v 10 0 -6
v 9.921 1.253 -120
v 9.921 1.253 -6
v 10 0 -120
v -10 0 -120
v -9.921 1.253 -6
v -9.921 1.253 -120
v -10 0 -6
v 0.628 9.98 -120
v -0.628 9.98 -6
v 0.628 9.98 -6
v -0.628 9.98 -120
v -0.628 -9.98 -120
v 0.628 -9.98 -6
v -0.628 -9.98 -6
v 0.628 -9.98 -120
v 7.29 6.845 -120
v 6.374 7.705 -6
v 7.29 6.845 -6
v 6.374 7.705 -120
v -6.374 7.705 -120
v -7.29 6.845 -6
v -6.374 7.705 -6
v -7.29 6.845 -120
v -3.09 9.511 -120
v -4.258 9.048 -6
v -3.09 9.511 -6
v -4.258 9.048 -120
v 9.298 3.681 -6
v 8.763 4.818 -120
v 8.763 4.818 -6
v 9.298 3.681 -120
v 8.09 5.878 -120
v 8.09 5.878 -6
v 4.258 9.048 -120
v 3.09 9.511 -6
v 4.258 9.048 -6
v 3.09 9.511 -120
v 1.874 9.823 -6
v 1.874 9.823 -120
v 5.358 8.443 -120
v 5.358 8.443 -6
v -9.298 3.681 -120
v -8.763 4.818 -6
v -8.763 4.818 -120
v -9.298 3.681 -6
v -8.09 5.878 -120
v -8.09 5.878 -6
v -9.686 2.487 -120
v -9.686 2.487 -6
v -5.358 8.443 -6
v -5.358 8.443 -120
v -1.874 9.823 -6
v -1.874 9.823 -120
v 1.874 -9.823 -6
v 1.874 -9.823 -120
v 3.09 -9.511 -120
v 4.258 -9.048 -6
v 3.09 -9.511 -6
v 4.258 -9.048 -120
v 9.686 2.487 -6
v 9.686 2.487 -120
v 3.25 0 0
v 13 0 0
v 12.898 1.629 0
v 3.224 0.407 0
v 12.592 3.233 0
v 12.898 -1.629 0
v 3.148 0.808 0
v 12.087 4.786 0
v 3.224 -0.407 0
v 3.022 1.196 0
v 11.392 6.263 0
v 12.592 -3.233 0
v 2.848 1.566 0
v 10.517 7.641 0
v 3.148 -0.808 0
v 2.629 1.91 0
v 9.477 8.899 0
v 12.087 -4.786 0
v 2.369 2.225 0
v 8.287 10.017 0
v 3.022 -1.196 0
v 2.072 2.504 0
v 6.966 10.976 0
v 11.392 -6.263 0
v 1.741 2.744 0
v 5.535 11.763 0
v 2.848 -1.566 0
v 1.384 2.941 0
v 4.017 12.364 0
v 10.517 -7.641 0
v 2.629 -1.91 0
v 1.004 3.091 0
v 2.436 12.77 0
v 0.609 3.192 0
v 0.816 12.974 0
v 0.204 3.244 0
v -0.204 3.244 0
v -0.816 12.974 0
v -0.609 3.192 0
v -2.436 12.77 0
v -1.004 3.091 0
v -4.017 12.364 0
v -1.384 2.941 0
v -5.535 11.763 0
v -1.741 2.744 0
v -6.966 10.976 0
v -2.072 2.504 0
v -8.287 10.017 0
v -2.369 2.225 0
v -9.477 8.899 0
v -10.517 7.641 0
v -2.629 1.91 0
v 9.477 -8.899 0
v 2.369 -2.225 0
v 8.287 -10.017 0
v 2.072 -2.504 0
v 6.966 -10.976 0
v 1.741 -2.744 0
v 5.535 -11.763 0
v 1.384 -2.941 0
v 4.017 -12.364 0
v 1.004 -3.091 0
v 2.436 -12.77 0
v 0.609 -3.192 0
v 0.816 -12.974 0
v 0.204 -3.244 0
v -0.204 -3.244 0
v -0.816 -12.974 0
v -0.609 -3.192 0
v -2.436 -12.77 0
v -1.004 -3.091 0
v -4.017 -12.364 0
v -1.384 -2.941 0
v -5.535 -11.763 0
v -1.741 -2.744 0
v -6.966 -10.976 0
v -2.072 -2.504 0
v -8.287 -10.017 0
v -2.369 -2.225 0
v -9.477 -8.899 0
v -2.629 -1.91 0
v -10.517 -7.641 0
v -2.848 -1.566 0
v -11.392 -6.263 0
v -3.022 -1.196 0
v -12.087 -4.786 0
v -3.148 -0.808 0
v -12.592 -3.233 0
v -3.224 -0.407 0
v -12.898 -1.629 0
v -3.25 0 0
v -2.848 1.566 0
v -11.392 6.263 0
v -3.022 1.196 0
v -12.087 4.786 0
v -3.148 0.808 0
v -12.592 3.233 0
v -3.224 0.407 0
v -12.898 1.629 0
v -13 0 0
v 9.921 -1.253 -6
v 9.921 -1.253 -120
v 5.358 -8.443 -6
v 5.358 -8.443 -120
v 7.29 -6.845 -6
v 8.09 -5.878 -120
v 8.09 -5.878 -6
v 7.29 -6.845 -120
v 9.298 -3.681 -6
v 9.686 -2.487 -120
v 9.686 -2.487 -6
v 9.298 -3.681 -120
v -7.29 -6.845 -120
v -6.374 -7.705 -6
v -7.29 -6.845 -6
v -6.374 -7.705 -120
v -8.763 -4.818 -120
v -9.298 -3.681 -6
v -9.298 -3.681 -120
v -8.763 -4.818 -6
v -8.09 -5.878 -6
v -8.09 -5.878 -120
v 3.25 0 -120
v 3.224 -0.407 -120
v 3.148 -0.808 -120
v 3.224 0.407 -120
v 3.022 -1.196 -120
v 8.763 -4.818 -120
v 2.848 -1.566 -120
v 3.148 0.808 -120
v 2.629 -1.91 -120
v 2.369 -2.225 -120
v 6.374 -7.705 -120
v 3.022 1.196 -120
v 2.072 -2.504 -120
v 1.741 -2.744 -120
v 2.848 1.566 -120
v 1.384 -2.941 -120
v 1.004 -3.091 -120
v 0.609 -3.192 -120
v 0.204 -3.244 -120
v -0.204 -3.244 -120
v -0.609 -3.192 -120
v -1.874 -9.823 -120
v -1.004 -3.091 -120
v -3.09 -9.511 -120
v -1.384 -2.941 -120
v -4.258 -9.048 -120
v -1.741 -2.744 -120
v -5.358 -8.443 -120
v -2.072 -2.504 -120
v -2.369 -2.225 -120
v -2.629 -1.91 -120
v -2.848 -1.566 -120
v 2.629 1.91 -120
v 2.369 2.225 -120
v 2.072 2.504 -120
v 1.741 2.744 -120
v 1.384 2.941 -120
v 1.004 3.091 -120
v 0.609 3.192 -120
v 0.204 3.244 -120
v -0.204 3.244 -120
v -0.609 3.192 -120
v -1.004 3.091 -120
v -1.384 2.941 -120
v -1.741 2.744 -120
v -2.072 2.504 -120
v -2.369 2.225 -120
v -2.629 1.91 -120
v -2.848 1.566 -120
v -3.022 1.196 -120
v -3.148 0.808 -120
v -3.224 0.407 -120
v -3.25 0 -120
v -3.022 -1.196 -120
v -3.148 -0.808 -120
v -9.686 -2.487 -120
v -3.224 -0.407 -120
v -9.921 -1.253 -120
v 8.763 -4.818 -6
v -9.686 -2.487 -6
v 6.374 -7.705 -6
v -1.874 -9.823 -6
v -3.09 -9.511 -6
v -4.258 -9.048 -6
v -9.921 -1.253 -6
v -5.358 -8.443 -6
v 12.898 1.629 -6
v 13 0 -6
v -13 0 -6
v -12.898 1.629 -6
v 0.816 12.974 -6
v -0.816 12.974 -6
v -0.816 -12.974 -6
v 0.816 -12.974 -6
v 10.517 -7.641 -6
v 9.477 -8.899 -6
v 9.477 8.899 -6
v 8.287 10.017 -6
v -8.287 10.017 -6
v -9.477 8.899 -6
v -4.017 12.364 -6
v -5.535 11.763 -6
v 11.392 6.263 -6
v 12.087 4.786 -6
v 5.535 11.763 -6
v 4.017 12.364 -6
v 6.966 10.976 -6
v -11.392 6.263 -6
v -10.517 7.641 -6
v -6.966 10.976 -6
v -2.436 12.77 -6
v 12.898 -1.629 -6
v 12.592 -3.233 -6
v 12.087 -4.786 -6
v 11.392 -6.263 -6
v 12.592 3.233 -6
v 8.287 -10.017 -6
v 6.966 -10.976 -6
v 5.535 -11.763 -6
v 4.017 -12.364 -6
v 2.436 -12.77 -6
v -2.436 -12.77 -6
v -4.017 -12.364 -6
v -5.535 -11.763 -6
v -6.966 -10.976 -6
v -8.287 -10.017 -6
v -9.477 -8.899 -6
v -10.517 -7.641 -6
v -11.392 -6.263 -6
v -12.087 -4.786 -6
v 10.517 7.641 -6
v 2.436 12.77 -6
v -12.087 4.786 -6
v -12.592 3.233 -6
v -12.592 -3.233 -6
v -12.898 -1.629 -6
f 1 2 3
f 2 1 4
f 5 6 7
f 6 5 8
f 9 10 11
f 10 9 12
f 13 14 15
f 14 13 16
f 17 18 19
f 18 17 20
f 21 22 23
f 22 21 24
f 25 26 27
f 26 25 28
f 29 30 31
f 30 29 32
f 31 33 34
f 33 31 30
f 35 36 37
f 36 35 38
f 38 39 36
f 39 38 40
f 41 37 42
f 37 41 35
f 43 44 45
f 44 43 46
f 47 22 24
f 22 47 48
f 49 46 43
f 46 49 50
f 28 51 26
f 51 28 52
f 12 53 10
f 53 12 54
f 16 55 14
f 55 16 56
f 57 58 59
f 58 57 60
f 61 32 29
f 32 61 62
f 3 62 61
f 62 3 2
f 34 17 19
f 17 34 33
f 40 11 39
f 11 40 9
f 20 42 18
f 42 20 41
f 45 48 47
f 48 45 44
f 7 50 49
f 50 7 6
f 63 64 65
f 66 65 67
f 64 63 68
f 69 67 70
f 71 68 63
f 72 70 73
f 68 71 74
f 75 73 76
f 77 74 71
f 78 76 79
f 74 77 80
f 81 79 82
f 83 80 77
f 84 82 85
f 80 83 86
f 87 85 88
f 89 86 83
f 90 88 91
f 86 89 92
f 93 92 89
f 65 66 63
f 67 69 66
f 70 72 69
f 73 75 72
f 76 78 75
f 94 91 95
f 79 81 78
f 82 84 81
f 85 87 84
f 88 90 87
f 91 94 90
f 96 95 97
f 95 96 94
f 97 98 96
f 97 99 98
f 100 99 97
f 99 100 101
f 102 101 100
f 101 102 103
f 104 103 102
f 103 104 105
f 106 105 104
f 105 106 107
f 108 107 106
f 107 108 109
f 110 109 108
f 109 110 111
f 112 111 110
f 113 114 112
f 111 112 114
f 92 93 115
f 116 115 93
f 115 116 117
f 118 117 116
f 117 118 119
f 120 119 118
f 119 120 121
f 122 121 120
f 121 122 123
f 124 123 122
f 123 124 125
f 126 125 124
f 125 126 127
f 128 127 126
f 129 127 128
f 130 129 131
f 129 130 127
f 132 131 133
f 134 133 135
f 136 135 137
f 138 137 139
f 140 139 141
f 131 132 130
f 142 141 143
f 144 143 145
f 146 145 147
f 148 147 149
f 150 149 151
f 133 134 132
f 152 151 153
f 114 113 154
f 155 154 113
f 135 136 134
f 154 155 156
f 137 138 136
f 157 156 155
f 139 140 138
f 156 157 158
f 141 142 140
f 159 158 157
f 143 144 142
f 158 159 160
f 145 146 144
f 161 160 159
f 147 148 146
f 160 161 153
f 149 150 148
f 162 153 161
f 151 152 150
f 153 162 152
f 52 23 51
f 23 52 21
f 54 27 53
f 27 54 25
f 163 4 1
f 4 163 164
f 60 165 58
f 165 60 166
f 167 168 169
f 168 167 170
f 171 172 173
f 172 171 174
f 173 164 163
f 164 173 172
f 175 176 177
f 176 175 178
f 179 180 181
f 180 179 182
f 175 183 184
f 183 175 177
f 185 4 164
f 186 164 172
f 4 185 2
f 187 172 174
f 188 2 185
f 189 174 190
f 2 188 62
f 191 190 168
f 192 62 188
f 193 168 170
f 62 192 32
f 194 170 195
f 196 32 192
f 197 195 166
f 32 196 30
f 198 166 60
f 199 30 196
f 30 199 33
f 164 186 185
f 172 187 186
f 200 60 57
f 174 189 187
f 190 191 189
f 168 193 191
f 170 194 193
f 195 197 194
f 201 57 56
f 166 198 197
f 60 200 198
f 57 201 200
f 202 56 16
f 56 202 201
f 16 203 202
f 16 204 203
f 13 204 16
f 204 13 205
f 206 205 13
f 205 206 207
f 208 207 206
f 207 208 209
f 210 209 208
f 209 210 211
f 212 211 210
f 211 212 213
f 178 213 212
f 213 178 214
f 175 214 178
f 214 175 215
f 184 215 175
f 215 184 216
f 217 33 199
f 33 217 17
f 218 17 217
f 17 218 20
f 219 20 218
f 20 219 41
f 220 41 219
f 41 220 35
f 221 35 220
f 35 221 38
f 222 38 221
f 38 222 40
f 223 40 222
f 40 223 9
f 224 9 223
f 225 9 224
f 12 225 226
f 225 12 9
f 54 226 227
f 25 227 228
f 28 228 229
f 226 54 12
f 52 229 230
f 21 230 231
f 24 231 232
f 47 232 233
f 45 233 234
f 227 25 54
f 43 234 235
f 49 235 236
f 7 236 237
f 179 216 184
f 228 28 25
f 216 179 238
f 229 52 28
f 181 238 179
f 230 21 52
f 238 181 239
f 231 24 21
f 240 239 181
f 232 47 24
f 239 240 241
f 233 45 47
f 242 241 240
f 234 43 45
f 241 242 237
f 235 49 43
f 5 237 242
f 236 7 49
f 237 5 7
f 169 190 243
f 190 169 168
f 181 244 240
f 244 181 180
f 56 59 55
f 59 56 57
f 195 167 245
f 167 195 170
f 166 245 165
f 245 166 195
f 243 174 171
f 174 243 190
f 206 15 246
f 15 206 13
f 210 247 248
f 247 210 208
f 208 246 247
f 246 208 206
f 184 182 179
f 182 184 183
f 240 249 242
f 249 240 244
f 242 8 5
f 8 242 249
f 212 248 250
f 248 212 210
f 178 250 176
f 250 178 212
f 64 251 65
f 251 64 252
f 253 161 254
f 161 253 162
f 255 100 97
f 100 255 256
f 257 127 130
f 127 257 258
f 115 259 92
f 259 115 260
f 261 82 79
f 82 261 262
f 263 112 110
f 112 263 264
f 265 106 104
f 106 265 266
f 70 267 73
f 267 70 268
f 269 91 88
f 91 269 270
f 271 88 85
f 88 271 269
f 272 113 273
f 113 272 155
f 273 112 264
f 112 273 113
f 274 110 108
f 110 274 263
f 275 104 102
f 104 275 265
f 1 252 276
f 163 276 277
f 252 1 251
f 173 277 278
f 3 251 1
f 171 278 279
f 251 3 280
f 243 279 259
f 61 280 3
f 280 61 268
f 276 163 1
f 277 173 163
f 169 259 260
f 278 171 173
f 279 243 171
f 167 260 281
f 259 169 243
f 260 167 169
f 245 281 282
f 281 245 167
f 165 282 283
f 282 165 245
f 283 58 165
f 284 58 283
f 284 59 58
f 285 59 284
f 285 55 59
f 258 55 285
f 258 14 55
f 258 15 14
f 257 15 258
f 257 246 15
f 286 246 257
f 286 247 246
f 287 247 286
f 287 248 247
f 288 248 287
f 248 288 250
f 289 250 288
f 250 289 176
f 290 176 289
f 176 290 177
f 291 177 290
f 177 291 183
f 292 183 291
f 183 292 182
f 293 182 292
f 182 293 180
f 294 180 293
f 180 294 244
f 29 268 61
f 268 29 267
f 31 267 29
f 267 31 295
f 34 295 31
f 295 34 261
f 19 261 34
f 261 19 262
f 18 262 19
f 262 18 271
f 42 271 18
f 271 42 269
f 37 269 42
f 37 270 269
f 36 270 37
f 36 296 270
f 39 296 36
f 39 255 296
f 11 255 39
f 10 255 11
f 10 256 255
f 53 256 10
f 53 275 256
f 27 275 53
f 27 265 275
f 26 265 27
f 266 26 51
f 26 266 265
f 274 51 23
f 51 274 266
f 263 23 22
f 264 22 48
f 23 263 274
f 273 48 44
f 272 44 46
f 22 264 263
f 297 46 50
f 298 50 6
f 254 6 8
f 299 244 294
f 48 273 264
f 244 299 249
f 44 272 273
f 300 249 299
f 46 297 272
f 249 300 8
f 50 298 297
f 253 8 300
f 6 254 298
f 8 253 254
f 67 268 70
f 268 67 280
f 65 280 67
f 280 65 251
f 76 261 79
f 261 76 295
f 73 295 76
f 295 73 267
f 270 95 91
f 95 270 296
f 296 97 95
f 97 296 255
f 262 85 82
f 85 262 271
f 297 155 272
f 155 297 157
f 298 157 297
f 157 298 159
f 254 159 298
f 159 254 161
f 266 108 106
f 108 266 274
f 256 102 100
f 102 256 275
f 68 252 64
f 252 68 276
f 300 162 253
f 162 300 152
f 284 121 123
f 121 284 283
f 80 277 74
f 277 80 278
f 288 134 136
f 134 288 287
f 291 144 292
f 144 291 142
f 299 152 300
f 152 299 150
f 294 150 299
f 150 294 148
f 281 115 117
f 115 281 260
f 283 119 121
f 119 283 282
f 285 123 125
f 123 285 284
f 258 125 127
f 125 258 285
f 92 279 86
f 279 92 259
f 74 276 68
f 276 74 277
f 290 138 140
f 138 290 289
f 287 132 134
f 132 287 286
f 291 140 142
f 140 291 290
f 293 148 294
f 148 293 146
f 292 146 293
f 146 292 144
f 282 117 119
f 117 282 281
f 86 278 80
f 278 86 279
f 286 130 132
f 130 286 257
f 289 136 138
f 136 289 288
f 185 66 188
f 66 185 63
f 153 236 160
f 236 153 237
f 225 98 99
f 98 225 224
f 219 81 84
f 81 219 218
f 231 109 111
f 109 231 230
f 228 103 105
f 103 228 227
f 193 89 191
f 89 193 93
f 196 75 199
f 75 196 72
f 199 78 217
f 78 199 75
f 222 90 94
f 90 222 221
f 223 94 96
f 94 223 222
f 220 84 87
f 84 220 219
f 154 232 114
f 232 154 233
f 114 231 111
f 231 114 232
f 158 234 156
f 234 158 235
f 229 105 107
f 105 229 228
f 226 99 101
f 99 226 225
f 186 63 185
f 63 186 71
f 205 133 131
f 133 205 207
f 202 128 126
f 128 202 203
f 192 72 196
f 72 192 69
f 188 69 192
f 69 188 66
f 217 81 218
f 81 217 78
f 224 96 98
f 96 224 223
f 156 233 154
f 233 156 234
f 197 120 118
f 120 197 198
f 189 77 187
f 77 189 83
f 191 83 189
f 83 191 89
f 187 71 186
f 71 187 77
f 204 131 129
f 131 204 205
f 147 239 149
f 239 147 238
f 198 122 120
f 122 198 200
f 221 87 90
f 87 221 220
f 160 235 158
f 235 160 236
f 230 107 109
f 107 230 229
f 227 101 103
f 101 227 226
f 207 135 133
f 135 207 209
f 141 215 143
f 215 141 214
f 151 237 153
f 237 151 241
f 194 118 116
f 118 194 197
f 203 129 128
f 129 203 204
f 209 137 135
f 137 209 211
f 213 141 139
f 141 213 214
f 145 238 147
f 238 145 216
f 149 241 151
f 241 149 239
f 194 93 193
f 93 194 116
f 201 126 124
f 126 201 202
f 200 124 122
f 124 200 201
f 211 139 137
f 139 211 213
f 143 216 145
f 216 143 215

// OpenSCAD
$fn = 50;


difference() {
	union() {
		translate(v = [0, 0, -120.0000000000]) {
			cylinder(h = 120, r = 10.0000000000);
		}
		translate(v = [0, 0, -6.0000000000]) {
			cylinder(h = 6, r = 13.0000000000);
		}
	}
	union() {
		#translate(v = [0, 0, -120]) {
			cylinder(h = 120, r = 3.2500000000);
		}
	}
}
